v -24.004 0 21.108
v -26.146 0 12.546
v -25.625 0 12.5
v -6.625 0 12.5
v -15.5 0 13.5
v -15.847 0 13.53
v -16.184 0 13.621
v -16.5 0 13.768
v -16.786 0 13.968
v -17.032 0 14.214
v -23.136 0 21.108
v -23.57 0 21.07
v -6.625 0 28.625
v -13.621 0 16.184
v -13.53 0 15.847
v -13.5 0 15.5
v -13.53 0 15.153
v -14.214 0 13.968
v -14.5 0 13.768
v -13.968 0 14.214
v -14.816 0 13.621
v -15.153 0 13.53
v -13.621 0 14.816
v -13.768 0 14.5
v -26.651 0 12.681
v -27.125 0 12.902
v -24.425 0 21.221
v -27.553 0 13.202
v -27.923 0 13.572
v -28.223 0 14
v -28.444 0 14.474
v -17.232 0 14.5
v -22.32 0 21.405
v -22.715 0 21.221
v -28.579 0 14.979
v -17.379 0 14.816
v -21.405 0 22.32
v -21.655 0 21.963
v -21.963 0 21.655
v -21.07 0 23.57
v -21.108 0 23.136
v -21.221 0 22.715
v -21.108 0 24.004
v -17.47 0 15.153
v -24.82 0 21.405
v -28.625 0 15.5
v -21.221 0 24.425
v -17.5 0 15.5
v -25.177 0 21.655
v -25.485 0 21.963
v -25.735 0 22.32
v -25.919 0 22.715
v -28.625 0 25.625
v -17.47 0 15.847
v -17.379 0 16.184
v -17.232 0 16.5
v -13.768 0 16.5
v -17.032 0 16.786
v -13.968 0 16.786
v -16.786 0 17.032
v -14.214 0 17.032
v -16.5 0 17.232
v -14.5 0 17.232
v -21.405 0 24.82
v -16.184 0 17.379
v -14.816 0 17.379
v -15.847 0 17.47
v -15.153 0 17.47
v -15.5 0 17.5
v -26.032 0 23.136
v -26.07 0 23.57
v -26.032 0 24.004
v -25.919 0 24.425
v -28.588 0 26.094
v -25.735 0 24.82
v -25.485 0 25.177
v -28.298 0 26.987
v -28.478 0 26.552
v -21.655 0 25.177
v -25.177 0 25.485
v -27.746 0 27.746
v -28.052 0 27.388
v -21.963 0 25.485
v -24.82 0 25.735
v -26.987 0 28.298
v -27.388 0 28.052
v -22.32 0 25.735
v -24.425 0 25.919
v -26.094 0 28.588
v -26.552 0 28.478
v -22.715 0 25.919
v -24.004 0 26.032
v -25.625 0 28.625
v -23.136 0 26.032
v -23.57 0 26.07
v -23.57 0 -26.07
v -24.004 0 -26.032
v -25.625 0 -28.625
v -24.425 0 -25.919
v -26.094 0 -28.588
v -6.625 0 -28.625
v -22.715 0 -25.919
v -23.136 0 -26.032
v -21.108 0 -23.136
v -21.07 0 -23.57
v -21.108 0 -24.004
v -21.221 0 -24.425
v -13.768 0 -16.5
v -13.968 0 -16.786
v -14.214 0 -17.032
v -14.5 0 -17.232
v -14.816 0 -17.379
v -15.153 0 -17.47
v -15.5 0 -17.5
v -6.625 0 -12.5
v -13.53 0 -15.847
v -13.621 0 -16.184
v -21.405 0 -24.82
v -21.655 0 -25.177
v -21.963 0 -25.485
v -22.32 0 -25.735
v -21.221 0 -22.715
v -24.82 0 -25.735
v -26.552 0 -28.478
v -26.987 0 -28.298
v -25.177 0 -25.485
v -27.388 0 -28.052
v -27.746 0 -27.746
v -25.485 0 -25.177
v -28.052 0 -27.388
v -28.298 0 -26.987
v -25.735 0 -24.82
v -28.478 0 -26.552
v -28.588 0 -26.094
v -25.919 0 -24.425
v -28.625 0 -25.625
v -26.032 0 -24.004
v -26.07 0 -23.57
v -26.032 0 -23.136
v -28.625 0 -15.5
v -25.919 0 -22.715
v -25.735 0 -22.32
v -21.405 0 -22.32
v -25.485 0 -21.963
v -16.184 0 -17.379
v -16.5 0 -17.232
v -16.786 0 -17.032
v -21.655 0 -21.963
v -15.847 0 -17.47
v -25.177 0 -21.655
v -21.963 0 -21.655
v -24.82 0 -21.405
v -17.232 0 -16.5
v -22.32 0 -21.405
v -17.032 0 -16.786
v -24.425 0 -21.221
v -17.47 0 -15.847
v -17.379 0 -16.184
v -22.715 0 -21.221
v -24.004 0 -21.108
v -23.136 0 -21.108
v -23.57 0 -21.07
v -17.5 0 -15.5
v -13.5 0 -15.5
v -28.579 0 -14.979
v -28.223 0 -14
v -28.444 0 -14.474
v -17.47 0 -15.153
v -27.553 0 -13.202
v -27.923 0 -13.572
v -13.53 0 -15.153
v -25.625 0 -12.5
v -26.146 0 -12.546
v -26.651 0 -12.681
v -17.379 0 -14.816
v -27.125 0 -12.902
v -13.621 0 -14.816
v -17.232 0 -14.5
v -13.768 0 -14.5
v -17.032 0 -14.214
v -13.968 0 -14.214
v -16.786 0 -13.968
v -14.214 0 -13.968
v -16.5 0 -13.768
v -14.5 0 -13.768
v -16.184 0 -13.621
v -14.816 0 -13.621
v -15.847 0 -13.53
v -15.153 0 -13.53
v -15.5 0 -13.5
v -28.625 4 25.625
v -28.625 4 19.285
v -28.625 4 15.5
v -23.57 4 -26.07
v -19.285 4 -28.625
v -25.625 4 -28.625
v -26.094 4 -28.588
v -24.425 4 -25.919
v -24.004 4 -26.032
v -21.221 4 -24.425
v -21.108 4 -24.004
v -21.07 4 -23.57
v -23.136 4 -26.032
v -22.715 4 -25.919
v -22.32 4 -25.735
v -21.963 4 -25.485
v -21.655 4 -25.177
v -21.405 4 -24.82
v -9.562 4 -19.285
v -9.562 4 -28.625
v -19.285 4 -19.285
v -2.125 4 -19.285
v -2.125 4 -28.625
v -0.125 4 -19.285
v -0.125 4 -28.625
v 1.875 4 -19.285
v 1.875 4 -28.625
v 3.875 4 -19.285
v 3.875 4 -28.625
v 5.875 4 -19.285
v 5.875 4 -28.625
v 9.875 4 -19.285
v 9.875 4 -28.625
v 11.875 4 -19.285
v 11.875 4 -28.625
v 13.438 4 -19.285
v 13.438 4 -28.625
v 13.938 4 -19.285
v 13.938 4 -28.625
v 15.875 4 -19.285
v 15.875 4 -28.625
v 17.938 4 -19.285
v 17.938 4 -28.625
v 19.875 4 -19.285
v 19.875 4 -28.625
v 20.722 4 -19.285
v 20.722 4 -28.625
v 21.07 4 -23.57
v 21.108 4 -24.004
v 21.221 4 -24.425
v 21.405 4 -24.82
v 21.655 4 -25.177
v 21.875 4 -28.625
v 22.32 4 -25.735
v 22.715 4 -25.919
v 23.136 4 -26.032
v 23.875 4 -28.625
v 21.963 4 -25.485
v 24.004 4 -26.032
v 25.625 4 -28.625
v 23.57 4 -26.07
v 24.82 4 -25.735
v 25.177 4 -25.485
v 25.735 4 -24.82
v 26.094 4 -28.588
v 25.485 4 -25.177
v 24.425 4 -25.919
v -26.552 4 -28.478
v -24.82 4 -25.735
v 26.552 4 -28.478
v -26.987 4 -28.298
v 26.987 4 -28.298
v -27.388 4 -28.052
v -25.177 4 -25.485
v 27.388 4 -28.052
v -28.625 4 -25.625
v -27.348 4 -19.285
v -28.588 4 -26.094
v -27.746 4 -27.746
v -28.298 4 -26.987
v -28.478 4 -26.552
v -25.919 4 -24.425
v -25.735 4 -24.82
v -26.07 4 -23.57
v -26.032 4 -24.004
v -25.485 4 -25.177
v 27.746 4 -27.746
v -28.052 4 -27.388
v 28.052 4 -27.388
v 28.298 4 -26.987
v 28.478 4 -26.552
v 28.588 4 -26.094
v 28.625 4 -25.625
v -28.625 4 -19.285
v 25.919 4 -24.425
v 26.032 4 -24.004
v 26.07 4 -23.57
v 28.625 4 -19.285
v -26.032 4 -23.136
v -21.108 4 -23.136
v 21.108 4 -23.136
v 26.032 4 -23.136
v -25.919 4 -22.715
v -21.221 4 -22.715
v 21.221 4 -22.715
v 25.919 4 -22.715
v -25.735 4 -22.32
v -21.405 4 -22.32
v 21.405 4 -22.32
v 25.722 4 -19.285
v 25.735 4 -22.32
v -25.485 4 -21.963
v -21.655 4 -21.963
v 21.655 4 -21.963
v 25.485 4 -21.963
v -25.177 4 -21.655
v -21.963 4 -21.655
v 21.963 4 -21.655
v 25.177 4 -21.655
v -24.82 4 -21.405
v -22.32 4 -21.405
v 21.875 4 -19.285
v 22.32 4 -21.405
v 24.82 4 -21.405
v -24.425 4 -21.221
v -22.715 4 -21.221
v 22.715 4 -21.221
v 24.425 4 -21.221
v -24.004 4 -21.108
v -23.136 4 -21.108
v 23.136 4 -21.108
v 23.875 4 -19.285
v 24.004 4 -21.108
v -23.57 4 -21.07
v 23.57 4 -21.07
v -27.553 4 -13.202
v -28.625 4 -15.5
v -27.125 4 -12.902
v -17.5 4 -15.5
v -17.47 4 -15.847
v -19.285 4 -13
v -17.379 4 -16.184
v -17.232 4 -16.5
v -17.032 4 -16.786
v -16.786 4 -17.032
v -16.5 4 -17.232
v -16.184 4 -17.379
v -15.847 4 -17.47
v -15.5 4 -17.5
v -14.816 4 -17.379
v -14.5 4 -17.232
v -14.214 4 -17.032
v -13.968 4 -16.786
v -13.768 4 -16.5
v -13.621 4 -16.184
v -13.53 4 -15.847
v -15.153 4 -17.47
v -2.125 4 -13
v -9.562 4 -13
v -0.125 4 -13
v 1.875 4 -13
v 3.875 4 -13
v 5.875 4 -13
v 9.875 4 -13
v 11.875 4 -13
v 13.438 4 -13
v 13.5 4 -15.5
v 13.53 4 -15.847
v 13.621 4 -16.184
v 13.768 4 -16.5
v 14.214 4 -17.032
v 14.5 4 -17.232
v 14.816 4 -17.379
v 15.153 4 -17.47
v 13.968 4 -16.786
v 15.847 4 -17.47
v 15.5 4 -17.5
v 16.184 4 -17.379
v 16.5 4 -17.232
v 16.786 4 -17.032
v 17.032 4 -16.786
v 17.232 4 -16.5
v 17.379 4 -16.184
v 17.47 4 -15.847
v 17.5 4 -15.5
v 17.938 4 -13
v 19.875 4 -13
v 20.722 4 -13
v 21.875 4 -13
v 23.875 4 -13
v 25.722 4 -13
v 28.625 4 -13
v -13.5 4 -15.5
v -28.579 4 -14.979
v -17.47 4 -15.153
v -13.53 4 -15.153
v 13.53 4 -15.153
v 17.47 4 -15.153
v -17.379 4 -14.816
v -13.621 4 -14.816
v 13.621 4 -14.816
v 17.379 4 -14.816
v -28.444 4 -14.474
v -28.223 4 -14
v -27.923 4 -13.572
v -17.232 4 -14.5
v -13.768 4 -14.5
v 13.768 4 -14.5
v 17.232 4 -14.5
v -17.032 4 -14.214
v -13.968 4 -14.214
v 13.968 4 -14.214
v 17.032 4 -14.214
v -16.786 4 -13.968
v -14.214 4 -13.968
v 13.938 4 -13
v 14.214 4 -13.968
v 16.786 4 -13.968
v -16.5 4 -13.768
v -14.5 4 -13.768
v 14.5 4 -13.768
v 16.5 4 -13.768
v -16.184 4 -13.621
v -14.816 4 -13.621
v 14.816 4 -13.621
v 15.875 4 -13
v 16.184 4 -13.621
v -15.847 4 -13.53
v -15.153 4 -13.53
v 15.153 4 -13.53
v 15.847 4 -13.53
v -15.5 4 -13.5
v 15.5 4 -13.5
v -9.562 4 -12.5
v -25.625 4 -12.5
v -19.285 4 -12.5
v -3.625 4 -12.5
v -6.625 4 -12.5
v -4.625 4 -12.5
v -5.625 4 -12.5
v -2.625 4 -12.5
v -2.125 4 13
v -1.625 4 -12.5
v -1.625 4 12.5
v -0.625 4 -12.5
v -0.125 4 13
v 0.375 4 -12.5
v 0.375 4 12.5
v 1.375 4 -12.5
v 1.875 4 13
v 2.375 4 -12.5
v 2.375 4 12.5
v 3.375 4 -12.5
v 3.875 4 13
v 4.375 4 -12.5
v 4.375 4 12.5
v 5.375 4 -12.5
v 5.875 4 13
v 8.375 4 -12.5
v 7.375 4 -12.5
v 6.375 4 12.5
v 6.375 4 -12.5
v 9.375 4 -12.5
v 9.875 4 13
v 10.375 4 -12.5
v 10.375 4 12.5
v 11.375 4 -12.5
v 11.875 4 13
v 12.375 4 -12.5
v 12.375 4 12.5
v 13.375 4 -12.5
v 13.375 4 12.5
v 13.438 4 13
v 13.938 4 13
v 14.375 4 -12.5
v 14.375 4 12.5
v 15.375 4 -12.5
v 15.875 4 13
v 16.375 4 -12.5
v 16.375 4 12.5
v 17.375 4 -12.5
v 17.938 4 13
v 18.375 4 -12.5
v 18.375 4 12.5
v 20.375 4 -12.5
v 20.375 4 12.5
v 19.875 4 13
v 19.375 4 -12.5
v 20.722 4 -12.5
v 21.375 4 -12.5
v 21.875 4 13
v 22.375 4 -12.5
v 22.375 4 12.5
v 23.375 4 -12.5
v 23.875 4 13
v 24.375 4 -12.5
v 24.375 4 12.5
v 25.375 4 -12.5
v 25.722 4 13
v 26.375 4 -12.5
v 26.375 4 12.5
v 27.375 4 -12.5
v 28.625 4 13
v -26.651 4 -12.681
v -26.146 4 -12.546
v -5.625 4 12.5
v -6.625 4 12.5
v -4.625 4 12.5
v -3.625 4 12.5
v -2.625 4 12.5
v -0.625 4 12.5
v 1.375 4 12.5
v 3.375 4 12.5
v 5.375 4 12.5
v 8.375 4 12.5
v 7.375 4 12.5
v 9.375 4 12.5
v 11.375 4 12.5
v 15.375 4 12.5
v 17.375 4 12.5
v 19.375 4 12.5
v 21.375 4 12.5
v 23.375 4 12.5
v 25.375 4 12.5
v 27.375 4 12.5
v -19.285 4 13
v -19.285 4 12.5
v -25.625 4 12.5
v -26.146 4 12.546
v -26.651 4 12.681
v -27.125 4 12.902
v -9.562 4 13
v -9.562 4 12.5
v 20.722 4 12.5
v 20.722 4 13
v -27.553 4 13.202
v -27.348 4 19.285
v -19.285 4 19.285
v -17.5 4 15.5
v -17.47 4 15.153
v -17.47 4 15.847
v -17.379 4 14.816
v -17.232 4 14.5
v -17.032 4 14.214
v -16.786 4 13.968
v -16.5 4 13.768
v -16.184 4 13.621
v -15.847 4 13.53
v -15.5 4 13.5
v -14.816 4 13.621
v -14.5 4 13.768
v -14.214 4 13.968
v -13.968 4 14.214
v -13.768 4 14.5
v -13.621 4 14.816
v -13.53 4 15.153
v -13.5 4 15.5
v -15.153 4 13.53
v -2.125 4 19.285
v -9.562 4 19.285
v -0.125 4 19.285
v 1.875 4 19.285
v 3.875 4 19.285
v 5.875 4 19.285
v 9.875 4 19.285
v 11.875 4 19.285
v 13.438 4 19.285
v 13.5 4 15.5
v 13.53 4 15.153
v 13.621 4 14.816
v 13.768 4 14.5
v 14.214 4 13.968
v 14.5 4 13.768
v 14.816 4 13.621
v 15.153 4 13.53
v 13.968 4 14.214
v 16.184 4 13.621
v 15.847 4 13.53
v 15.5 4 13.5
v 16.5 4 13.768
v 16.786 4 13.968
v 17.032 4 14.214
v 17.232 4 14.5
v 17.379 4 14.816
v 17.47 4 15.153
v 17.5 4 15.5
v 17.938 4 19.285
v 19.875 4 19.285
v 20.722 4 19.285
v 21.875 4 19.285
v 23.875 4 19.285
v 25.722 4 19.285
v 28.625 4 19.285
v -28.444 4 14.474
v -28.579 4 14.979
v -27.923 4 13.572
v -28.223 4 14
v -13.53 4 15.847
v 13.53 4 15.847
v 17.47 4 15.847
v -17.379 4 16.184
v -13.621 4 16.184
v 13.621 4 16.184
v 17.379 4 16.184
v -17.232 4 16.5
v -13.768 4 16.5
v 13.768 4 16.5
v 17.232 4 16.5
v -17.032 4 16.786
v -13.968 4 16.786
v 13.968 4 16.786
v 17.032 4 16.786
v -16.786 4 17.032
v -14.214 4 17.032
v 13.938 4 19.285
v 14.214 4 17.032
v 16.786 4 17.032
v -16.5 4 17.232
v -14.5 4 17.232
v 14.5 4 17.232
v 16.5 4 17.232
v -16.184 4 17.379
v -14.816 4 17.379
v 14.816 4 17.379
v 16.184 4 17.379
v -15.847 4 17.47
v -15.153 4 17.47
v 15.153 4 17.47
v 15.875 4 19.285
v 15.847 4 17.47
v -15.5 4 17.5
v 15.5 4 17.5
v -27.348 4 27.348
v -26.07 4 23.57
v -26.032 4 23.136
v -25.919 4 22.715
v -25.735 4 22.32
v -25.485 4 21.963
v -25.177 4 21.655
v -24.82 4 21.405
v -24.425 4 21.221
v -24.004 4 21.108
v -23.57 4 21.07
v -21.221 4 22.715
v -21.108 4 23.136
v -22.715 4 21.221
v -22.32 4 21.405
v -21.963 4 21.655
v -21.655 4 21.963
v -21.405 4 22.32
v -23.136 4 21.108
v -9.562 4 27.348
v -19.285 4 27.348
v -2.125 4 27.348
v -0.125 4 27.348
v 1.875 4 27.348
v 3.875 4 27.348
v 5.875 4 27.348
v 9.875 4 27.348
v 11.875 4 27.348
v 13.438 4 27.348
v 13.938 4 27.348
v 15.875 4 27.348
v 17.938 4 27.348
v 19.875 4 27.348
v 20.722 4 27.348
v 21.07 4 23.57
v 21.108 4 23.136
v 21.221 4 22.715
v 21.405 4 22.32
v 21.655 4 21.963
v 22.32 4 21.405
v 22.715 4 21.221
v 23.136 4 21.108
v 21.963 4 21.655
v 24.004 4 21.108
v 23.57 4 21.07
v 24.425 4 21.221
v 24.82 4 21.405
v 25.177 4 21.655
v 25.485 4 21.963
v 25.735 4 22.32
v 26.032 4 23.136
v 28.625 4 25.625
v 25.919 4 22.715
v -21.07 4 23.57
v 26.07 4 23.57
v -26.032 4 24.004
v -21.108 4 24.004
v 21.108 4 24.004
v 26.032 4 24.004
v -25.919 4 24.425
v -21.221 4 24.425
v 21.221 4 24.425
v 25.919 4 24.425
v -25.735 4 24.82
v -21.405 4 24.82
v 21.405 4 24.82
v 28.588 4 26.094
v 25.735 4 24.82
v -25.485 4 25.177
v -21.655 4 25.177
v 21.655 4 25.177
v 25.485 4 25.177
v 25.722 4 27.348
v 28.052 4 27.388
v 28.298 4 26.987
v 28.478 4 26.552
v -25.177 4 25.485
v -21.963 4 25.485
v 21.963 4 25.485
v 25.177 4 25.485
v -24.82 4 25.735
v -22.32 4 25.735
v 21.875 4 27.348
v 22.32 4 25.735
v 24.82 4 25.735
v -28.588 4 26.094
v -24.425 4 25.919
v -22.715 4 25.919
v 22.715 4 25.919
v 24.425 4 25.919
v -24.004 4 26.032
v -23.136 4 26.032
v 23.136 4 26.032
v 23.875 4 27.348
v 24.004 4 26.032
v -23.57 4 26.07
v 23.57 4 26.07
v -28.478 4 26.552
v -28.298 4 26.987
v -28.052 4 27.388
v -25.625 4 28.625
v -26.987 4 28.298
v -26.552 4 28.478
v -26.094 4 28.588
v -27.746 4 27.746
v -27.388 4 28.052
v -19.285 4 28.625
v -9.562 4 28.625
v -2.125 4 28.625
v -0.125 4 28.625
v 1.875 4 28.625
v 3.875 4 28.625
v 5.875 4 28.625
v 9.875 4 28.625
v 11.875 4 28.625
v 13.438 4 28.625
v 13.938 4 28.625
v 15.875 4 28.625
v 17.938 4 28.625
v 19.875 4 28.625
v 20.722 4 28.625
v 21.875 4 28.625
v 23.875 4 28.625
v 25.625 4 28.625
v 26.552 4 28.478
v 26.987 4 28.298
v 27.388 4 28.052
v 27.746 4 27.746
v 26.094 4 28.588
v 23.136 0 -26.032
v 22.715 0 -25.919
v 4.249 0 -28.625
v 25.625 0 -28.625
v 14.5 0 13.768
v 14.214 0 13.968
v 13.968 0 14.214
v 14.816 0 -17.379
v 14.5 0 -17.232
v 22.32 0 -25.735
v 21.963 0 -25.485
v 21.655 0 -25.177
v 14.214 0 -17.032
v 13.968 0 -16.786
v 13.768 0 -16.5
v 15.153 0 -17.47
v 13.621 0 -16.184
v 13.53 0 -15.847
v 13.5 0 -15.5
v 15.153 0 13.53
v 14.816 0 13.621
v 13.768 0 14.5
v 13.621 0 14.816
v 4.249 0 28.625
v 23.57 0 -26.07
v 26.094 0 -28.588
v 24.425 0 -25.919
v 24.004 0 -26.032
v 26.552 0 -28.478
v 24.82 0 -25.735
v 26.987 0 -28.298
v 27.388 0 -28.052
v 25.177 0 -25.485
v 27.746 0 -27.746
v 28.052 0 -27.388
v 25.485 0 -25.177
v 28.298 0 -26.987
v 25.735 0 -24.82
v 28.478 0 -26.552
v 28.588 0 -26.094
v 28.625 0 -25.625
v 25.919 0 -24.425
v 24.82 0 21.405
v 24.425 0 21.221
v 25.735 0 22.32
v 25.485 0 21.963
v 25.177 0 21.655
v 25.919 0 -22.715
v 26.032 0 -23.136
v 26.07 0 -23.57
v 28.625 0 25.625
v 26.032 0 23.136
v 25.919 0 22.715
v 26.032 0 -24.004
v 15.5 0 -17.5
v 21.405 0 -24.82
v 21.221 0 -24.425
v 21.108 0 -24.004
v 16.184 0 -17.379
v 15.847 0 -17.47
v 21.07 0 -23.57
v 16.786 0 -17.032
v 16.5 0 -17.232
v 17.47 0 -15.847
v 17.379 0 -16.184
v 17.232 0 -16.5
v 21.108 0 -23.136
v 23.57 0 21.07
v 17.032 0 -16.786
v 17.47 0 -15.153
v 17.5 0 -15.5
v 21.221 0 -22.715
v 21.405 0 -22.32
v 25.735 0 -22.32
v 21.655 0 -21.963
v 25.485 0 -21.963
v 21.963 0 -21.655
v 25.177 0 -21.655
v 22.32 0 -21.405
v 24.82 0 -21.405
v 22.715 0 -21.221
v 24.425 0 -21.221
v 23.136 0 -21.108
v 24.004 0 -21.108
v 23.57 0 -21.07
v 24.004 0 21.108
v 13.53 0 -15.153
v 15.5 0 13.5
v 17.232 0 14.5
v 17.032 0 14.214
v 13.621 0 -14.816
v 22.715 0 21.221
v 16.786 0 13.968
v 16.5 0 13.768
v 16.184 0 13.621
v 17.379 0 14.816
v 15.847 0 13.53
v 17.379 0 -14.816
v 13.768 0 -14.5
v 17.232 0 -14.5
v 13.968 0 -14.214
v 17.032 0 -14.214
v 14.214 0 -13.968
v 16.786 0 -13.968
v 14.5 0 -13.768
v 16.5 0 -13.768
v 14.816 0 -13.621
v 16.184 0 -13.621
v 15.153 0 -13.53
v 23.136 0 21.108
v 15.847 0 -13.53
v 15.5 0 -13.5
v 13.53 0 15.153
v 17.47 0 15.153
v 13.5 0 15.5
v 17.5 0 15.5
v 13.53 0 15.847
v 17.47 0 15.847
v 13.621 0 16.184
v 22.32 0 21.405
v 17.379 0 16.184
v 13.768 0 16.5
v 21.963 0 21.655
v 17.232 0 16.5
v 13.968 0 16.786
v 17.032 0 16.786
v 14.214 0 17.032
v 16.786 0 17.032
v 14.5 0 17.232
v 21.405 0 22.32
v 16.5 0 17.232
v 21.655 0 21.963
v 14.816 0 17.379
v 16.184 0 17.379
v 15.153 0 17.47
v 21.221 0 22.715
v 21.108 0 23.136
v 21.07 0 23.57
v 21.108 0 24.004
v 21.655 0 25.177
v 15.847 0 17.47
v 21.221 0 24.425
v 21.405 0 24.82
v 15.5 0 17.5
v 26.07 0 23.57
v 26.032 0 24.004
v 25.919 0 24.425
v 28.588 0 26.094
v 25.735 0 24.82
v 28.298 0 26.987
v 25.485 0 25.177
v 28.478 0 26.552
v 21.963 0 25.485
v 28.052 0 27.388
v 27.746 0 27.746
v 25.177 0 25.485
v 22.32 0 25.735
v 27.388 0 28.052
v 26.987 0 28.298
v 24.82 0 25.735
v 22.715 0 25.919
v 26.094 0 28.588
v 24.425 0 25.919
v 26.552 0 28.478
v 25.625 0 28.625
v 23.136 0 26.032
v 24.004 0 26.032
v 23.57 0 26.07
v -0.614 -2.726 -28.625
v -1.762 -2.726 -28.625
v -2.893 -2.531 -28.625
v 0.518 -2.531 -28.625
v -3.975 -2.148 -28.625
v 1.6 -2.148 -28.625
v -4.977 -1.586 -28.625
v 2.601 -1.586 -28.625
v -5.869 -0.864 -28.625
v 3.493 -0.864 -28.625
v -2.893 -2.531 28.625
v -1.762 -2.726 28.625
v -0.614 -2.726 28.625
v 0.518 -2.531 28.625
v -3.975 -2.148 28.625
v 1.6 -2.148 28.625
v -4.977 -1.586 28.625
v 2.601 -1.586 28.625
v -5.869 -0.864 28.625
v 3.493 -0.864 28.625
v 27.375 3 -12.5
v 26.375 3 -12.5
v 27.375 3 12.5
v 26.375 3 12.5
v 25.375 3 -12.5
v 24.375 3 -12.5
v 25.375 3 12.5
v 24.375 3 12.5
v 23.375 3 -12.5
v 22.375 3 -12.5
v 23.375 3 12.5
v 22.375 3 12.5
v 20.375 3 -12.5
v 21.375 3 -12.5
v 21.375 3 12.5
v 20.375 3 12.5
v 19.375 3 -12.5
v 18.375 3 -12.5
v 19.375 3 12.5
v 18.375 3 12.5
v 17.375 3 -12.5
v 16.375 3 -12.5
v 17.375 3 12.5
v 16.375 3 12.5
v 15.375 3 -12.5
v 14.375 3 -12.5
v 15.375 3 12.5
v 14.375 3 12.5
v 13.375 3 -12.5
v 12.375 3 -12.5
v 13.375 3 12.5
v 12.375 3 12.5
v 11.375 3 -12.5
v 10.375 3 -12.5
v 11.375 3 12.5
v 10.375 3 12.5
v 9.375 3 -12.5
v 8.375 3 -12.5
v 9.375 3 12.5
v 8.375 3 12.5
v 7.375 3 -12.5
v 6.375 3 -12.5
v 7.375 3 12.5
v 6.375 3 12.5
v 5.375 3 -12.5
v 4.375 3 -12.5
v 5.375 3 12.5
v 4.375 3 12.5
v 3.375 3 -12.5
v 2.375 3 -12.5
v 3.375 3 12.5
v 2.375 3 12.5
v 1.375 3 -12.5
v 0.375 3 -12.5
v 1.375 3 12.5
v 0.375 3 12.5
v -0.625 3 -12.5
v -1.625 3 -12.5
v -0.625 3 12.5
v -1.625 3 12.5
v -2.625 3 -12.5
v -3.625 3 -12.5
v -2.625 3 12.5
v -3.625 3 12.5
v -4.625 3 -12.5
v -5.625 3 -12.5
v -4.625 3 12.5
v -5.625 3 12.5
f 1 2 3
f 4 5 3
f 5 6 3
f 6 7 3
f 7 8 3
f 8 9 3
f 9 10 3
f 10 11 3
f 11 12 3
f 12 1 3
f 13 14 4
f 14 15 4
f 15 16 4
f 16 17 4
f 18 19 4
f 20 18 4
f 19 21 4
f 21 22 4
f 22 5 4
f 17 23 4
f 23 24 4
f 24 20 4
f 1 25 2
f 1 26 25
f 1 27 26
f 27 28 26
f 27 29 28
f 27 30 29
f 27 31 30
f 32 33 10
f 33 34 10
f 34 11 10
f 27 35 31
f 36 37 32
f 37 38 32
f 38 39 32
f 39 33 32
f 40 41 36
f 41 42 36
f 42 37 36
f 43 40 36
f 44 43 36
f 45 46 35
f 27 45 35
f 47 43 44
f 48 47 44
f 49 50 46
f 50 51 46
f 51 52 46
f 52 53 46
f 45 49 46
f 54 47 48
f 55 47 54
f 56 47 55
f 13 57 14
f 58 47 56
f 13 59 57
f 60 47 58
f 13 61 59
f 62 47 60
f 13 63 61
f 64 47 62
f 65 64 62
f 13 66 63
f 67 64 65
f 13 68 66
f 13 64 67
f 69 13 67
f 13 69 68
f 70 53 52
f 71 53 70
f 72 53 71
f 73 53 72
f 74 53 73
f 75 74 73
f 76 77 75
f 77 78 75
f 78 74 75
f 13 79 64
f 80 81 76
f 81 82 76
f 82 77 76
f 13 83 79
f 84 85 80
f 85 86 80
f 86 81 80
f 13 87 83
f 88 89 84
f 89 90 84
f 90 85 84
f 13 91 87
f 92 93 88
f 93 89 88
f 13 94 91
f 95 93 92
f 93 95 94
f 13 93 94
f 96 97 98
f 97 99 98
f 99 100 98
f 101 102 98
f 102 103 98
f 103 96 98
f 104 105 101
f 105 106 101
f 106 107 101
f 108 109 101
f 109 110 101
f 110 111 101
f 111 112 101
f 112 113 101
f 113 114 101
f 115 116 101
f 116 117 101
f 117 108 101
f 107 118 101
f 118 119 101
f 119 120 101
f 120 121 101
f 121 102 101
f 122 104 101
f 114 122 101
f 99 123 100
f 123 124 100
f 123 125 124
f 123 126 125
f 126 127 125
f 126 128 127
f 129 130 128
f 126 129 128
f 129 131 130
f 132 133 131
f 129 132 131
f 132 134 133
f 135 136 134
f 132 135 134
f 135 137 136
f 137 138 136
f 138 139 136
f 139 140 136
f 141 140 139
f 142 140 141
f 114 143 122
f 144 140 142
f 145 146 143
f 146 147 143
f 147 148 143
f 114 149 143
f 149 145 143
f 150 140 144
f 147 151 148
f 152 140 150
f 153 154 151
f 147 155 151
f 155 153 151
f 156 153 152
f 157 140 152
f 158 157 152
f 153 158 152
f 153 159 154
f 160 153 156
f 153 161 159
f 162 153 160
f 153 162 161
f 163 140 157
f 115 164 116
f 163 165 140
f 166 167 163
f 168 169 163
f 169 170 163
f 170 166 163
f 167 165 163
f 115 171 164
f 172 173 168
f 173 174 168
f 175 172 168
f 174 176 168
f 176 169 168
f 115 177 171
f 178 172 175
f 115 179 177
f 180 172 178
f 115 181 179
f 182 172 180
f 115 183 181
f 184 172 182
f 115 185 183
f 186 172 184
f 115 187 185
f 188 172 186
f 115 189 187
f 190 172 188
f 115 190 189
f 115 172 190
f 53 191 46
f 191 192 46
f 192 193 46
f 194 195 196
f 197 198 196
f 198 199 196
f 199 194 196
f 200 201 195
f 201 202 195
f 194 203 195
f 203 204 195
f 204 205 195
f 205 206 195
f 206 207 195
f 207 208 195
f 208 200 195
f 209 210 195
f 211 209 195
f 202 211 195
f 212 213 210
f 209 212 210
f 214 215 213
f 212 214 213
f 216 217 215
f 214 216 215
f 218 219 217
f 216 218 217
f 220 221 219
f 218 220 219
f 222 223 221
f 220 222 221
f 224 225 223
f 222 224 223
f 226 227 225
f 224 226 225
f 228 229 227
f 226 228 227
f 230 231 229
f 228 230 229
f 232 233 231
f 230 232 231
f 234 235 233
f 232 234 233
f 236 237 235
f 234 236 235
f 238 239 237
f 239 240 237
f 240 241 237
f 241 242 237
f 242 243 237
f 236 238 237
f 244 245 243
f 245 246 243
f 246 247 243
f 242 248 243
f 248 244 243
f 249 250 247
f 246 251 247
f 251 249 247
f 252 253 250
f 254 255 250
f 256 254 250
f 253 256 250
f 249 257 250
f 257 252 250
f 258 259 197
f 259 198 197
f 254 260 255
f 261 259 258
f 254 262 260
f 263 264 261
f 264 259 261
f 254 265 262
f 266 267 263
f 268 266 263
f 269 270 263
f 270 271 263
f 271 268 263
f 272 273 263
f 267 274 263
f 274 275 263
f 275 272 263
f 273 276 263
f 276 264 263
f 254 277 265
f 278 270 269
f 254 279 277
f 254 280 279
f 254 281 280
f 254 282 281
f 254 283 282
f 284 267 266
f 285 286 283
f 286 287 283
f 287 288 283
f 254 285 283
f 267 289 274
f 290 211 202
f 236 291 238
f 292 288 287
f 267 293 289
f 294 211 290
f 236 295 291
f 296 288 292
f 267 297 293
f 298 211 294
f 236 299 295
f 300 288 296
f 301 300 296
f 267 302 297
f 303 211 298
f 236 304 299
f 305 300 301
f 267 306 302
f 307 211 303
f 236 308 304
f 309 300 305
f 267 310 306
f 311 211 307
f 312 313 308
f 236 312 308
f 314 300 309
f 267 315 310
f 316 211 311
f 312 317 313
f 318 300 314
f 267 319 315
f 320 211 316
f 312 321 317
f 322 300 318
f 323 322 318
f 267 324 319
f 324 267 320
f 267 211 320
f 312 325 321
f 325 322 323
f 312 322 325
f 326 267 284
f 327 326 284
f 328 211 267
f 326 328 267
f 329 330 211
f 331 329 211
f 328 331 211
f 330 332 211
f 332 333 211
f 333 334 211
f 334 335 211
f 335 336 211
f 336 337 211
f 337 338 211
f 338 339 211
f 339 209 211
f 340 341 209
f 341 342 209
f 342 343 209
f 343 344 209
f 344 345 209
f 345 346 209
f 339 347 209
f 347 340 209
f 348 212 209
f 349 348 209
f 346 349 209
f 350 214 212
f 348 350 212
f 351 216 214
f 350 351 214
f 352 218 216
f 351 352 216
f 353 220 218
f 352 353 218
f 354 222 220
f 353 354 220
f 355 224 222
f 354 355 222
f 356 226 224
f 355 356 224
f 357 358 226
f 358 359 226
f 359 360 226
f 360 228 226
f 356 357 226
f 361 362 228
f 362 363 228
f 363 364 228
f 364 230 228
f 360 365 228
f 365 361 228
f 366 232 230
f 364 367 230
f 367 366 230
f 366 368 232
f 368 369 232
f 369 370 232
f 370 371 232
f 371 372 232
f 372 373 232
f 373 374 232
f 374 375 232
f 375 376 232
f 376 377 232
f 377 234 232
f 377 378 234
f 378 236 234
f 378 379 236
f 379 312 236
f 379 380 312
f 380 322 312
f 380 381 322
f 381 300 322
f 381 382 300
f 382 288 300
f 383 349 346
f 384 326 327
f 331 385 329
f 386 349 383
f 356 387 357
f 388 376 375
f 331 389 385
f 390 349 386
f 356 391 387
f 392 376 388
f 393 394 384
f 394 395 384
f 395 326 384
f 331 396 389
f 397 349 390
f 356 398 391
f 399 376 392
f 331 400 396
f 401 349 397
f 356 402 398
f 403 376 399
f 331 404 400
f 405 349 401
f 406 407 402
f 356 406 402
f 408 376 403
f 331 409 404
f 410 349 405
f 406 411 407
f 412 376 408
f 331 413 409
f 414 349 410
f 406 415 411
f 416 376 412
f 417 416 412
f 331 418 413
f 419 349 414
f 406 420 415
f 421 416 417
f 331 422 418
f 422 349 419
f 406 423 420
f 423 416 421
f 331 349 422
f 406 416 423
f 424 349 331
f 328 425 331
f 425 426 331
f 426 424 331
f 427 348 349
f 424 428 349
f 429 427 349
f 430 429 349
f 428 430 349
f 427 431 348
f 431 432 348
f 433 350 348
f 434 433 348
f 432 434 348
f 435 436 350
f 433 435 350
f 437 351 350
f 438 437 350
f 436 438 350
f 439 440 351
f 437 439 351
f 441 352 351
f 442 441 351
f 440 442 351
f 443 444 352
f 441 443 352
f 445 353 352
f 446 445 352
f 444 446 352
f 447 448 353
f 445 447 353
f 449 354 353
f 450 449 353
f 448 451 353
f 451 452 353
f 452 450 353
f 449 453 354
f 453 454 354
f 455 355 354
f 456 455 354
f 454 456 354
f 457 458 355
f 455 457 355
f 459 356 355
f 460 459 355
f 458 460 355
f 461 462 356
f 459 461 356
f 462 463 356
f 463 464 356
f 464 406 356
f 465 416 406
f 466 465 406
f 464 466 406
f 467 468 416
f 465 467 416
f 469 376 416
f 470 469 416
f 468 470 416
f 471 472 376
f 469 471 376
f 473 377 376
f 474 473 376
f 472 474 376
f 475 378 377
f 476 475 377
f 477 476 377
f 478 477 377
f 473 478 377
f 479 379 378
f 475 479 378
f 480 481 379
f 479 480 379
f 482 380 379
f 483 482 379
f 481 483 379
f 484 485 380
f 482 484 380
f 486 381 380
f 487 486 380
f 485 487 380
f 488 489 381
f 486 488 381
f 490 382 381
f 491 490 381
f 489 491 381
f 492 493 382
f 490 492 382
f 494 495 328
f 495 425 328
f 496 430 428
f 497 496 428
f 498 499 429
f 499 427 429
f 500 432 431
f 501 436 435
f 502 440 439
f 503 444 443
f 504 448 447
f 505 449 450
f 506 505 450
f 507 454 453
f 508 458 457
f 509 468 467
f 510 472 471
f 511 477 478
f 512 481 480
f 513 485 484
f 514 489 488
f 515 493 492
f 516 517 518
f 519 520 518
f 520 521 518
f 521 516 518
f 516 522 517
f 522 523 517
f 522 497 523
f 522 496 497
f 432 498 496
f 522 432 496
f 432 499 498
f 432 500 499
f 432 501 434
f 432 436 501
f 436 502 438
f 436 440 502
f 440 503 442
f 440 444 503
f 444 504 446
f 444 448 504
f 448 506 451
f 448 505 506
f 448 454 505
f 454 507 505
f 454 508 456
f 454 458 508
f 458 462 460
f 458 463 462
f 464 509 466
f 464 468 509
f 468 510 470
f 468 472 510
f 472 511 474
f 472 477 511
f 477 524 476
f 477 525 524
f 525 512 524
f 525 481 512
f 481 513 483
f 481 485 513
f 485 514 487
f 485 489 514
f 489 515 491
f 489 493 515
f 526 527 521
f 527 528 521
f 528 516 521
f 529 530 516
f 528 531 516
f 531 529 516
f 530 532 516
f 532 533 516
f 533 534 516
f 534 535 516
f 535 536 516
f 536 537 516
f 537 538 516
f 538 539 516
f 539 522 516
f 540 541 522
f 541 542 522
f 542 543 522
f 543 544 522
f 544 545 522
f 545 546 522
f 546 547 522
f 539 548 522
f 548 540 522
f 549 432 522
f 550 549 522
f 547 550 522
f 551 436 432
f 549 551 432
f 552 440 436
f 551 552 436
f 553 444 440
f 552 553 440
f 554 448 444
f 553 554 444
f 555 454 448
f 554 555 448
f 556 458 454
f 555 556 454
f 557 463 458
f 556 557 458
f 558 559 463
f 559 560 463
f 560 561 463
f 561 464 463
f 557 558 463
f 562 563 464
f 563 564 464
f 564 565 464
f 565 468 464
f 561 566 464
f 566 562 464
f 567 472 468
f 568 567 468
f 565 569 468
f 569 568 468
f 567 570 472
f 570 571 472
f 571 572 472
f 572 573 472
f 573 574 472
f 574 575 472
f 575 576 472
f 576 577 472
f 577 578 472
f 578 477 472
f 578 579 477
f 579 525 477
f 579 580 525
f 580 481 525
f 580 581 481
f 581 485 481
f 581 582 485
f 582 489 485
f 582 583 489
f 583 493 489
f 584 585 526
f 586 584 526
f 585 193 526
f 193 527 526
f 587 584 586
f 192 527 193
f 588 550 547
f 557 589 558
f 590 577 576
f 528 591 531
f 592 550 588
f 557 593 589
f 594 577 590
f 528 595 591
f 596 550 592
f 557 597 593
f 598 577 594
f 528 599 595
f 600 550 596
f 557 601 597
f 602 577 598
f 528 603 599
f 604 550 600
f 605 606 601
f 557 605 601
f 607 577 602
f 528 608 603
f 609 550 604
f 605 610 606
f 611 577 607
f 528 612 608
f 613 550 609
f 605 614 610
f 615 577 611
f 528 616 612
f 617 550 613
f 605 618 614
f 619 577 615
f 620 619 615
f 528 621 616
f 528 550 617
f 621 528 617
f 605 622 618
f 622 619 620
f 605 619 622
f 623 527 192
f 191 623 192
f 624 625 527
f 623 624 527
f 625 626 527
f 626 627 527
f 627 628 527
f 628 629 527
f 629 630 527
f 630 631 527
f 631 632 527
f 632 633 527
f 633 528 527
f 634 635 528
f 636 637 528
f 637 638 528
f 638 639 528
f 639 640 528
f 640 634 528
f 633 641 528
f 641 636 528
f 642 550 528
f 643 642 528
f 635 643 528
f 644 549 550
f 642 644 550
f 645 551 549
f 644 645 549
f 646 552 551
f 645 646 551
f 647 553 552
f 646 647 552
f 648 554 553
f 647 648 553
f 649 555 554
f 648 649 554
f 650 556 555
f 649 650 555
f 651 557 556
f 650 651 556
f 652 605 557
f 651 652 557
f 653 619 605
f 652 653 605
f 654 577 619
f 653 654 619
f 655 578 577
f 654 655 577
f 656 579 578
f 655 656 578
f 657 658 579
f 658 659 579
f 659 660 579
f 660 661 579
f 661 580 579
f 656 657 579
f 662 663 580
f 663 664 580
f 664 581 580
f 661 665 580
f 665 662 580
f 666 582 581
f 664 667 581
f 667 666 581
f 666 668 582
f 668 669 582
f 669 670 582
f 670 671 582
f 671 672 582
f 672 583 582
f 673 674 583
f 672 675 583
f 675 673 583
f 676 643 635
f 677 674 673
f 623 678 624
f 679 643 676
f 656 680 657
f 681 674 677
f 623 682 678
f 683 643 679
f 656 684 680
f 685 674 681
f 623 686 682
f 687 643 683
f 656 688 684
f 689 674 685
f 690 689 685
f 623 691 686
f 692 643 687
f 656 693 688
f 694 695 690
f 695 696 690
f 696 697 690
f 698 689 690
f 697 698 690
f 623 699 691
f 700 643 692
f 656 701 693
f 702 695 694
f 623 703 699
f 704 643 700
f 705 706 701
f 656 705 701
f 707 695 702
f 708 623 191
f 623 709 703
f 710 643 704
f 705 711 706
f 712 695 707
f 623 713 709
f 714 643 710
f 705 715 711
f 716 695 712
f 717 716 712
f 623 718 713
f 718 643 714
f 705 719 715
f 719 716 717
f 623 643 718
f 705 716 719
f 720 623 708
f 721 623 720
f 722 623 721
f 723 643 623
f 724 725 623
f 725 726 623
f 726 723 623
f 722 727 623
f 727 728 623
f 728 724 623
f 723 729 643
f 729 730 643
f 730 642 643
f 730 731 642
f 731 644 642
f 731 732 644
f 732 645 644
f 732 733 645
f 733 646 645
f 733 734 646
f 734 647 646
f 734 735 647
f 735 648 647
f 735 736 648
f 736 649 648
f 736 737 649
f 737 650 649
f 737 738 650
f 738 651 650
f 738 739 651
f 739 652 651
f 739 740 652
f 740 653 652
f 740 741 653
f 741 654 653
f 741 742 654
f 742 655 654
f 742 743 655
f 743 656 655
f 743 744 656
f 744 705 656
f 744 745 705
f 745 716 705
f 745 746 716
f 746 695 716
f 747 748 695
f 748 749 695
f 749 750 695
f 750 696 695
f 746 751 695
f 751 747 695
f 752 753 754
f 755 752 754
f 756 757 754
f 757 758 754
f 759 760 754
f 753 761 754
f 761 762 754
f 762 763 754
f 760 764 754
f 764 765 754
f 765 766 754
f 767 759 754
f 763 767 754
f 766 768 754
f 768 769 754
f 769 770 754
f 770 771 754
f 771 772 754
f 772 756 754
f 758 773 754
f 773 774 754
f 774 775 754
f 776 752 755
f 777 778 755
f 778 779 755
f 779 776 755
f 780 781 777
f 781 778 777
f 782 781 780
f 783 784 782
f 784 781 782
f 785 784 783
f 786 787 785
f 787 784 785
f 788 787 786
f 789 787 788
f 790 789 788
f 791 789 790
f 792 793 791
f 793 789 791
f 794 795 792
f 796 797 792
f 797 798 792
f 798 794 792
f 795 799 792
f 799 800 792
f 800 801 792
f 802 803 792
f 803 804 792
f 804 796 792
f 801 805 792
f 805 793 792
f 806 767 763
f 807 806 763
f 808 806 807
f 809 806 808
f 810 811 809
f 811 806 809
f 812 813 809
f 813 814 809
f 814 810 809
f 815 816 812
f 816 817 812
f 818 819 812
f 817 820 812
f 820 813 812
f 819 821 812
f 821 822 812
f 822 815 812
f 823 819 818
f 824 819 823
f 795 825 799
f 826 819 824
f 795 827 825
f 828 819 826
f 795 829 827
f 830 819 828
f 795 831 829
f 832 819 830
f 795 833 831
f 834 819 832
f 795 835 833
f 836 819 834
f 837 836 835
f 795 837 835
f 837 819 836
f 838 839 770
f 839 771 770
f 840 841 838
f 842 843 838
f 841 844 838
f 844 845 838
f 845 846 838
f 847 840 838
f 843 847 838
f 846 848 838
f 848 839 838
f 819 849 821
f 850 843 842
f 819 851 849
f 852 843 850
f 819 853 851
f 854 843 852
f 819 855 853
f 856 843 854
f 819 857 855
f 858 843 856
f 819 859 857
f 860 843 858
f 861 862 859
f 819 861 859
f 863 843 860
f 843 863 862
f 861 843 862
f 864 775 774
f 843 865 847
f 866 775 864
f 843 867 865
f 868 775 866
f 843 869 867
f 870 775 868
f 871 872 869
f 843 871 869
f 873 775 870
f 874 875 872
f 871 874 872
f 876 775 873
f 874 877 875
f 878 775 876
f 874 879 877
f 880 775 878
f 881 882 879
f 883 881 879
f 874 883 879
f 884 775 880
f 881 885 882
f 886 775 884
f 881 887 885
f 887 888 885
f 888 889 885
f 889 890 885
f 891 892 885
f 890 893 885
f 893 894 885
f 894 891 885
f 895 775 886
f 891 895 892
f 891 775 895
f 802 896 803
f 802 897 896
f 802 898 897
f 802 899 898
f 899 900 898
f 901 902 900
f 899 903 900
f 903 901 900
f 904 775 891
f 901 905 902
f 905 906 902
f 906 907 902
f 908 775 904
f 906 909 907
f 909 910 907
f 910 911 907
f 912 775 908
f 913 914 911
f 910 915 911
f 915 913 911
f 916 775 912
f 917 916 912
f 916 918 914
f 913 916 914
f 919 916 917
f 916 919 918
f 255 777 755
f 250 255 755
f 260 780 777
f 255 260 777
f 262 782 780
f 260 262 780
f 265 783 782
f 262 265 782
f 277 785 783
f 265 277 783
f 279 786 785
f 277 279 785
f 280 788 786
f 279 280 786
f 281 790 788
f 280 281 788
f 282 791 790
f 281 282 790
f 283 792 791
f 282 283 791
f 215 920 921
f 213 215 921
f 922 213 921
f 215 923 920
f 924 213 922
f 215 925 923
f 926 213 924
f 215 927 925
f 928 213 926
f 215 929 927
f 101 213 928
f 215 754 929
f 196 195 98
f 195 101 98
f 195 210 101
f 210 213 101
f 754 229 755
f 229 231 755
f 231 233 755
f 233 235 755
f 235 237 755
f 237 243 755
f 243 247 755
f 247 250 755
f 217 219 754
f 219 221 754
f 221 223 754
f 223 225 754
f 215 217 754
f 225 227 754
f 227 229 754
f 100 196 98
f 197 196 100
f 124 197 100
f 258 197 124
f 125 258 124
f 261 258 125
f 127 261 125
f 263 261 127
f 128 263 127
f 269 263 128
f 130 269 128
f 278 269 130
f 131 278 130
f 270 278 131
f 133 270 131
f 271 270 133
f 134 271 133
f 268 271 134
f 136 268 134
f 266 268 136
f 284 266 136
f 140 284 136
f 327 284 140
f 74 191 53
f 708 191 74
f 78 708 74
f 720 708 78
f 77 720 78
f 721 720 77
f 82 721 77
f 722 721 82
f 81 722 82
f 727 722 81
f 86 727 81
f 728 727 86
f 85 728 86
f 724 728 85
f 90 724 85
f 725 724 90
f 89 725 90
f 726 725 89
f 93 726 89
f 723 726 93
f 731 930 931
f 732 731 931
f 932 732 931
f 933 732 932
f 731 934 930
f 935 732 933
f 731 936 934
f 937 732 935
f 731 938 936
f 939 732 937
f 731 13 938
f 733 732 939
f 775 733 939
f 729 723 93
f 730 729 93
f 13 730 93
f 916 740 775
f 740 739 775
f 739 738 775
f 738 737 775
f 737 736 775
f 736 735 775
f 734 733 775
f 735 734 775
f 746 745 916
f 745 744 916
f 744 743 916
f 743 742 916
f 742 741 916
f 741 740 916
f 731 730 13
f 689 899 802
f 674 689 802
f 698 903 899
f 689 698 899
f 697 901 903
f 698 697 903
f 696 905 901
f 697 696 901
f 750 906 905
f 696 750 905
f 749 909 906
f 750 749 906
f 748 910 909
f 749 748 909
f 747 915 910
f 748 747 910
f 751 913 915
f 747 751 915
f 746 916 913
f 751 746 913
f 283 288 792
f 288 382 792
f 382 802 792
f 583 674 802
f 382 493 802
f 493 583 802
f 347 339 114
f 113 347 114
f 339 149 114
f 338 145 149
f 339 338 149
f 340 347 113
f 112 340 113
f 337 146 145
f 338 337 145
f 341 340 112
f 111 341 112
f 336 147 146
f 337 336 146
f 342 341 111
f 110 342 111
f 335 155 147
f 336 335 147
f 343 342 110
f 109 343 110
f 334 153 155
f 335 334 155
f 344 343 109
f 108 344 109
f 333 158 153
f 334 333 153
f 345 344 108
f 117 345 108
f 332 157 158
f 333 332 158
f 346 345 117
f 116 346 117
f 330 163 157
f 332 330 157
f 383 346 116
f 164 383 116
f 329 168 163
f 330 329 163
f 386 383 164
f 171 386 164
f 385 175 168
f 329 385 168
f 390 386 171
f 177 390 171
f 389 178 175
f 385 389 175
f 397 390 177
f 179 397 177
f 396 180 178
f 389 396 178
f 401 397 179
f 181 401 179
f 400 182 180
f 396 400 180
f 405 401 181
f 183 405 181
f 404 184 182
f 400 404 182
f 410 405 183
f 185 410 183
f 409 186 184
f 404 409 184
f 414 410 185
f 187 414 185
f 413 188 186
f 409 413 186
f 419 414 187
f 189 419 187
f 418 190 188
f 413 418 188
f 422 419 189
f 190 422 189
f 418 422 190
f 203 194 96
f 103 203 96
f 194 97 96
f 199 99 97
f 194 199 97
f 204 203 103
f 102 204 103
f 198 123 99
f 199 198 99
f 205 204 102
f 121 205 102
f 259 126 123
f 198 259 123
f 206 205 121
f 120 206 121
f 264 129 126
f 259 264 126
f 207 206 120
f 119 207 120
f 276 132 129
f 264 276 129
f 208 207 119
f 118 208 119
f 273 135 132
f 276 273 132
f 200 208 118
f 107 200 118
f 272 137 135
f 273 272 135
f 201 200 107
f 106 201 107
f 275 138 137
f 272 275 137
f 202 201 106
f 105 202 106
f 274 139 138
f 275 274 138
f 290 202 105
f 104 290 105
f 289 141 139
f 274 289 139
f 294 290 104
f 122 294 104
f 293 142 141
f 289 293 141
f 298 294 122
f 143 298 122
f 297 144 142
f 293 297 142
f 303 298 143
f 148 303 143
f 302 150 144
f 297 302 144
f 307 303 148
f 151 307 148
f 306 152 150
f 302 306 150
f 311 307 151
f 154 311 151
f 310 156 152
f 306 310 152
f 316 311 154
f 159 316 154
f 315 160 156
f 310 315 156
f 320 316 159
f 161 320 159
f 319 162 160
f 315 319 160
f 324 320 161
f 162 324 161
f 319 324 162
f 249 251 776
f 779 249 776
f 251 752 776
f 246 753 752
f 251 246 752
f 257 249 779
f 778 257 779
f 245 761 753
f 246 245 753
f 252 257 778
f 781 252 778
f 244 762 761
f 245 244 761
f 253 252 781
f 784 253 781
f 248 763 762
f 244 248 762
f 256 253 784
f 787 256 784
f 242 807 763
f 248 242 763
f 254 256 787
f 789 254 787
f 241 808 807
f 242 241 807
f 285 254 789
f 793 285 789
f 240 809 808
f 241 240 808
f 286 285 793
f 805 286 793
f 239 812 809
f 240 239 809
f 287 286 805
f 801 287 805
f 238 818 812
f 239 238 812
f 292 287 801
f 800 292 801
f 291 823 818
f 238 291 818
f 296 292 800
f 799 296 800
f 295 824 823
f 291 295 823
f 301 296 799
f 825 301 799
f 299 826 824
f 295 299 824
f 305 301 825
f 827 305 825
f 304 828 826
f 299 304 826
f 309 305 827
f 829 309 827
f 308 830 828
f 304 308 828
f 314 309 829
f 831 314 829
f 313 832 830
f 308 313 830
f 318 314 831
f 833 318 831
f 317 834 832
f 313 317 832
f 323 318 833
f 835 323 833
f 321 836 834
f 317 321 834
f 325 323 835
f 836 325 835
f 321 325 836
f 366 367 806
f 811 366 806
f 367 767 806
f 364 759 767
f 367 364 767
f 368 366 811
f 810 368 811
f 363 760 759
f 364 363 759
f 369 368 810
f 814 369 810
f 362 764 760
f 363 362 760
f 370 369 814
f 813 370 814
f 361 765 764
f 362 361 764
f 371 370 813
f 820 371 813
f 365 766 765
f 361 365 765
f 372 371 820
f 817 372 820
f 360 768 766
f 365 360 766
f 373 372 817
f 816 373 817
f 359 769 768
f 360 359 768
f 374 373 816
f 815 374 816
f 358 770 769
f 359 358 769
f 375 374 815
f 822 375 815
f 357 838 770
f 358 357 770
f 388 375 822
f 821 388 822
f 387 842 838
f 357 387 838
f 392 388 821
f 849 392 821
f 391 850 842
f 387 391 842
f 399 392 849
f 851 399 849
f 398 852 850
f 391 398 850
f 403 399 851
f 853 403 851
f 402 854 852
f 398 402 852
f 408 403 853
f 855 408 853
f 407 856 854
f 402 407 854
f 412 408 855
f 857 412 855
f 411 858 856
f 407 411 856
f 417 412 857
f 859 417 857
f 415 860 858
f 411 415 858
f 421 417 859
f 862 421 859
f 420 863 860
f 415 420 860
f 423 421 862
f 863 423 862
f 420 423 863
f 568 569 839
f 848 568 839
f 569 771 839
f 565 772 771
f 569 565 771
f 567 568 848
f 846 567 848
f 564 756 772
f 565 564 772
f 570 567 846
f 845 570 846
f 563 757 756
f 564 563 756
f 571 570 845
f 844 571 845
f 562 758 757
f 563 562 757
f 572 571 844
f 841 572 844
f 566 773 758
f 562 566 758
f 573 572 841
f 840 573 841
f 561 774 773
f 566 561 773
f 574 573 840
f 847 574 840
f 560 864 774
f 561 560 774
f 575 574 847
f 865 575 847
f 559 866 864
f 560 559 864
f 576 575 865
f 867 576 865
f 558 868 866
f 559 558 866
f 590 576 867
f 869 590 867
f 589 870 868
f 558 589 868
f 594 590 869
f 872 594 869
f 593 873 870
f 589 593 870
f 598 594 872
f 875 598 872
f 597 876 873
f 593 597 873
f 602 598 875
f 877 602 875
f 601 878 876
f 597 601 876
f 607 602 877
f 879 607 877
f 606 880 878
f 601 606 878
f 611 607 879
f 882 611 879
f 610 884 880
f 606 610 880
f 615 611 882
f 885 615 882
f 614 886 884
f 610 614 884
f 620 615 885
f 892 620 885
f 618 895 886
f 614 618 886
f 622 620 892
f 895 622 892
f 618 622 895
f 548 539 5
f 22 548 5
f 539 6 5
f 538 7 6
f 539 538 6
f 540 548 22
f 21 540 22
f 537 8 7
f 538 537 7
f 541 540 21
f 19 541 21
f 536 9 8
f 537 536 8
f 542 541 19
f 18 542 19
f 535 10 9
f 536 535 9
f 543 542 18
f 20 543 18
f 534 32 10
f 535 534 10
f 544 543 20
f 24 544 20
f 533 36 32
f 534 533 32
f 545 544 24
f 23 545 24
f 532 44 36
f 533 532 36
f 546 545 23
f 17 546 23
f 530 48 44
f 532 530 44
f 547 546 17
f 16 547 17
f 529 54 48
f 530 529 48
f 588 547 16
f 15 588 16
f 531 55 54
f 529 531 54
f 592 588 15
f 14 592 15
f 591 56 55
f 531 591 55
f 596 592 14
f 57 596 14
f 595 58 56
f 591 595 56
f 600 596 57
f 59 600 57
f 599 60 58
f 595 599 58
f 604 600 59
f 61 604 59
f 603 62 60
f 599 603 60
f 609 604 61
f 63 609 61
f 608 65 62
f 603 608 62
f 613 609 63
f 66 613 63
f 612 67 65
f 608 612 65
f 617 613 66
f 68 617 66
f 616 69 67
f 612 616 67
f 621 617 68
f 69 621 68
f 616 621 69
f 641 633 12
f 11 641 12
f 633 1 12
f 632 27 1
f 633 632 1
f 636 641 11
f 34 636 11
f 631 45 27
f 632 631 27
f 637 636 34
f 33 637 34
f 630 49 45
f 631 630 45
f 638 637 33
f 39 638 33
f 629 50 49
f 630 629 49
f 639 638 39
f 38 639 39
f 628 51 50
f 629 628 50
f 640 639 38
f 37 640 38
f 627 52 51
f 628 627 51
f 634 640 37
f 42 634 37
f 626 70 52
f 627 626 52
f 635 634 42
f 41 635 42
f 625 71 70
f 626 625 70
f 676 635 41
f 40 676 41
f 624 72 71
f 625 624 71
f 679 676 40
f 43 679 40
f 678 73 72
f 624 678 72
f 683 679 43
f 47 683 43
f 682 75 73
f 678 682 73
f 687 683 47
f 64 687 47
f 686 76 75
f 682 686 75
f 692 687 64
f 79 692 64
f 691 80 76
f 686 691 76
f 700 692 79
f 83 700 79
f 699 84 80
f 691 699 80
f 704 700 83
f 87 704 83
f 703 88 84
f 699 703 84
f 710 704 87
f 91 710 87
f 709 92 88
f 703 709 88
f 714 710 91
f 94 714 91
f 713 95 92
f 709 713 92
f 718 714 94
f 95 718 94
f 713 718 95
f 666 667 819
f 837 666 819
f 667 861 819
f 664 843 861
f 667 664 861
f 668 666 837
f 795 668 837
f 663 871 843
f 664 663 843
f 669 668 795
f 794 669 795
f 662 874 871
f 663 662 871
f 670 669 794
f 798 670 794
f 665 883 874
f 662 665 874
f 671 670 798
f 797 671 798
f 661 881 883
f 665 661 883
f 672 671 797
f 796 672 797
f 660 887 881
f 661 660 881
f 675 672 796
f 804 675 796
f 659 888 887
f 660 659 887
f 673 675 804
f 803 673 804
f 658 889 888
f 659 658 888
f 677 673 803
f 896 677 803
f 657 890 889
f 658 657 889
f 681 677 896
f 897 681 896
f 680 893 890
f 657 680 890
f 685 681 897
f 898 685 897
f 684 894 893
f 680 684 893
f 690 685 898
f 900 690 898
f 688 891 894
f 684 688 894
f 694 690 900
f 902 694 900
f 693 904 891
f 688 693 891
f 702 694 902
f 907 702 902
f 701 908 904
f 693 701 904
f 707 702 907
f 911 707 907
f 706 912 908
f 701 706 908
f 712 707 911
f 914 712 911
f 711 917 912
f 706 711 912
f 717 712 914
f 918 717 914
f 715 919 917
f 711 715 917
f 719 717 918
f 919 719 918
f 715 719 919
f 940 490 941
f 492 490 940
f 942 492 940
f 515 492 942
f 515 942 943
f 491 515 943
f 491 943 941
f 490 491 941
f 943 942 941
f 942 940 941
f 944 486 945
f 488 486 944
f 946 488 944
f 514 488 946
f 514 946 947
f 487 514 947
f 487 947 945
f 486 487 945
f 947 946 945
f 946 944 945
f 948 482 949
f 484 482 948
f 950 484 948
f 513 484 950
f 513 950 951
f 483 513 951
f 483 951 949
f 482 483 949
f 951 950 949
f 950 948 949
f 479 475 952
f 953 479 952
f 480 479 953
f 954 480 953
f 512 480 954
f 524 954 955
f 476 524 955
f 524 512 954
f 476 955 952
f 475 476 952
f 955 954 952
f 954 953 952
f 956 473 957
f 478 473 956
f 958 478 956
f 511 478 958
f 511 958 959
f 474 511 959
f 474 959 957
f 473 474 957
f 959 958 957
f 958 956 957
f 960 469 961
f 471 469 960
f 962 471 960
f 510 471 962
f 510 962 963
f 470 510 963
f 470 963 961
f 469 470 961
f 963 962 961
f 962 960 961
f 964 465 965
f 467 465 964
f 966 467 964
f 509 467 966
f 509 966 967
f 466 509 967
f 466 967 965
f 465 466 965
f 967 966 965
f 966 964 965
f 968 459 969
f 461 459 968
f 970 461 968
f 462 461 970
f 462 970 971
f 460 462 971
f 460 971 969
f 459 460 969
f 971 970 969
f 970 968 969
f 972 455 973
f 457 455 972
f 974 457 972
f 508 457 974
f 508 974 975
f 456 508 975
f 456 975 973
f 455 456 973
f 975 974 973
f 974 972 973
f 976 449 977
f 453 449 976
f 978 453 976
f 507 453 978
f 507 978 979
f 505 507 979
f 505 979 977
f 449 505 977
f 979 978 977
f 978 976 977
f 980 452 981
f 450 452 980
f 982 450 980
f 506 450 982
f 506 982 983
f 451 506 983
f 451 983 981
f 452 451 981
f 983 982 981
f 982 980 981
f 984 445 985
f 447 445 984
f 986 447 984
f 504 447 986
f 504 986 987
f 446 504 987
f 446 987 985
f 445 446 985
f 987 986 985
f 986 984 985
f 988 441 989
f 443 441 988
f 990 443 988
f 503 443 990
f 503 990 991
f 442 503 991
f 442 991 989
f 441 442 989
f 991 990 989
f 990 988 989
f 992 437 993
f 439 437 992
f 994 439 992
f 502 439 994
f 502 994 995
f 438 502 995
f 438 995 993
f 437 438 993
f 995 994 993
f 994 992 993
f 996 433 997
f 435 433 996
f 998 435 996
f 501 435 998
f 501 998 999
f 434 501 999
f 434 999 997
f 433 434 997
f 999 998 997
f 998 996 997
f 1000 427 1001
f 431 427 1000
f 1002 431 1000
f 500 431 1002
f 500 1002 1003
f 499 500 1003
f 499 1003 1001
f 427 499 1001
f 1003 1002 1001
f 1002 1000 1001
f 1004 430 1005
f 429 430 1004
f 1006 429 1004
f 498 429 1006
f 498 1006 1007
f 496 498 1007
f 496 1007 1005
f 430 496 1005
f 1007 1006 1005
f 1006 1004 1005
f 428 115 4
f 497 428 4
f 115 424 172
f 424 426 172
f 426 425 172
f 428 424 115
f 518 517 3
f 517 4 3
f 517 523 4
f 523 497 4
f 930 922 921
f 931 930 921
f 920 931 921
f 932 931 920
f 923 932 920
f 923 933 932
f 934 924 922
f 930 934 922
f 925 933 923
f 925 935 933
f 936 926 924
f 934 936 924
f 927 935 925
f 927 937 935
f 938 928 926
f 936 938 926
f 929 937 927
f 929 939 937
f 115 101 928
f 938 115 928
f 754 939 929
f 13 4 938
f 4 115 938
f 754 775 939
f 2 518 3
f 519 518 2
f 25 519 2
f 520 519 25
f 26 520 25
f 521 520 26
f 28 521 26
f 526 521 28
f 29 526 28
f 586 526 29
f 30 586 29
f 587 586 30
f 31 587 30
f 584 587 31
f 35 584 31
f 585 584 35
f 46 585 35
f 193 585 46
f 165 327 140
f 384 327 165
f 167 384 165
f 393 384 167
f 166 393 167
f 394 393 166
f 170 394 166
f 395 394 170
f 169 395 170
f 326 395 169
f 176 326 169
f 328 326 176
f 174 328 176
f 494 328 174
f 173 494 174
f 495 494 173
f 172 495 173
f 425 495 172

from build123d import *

# Parameters (mm, degrees)
SKETCH1_R           = 2
SKETCH1_R_2         = 2.5
BOSS_EXTRUDE1_DEPTH = 4
SKETCH2_W           = 1
SKETCH2_H           = 25
CUT_EXTRUDE1_DEPTH  = 1
SKETCH3_W           = 22
SKETCH3_H           = 25
CUT_EXTRUDE2_DEPTH  = 41.679002569
BOSS_EXTRUDE2_REACH = 66.132
FILLET1_R           = 3


with BuildPart() as part:
    # Sketch1 → Boss-Extrude1 (new body)
    with BuildSketch(Plane(origin=(0, 0, 0), x_dir=(1, 0, 0), z_dir=(0, 1, 0))):
        with BuildLine():
            Line((25.625, 28.625), (-25.625, 28.625))
            ThreePointArc((-25.625, 28.625), (-27.746320344, 27.746320344), (-28.625, 25.625))
            Line((-28.625, 25.625), (-28.625, -25.625))
            ThreePointArc((-28.625, -25.625), (-27.746320344, -27.746320344), (-25.625, -28.625))
            Line((-25.625, -28.625), (25.625, -28.625))
            ThreePointArc((25.625, -28.625), (27.746320344, -27.746320344), (28.625, -25.625))
            Line((28.625, -25.625), (28.625, 25.625))
            ThreePointArc((28.625, 25.625), (27.746320344, 27.746320344), (25.625, 28.625))
        make_face()
        with Locations(Location((-15.5, 15.5, 0), (0, 0, 270))):
            Circle(SKETCH1_R, mode=Mode.SUBTRACT)
        with Locations(Location((-23.55, 23.55, 0), (0, 0, 270))):
            Circle(SKETCH1_R_2, mode=Mode.SUBTRACT)
        with Locations(Location((23.55, 23.55, 0), (0, 0, 270))):
            Circle(SKETCH1_R_2, mode=Mode.SUBTRACT)
        with Locations(Location((15.5, 15.5, 0), (0, 0, 270))):
            Circle(SKETCH1_R, mode=Mode.SUBTRACT)
        with Locations(Location((15.5, -15.5, 0), (0, 0, 270))):
            Circle(SKETCH1_R, mode=Mode.SUBTRACT)
        with Locations(Location((-15.5, -15.5, 0), (0, 0, 270))):
            Circle(SKETCH1_R, mode=Mode.SUBTRACT)
        with Locations(Location((-23.55, -23.55, 0), (0, 0, 270))):
            Circle(SKETCH1_R_2, mode=Mode.SUBTRACT)
        with Locations(Location((23.55, -23.55, 0), (0, 0, 270))):
            Circle(SKETCH1_R_2, mode=Mode.SUBTRACT)
    extrude(amount=BOSS_EXTRUDE1_DEPTH)

    # Sketch2 → Cut-Extrude1 (cut)
    with BuildSketch(Plane(origin=(0, 4, 0), x_dir=(1, 0, 0), z_dir=(0, 1, 0))):
        with Locations((-27.125, 0)):
            Rectangle(SKETCH2_W, SKETCH2_H)
        with Locations((-25.125, 0)):
            Rectangle(SKETCH2_W, SKETCH2_H)
        with Locations((-23.125, 0)):
            Rectangle(SKETCH2_W, SKETCH2_H)
        with Locations((-21.125, 0)):
            Rectangle(SKETCH2_W, SKETCH2_H)
        with Locations((-19.125, 0)):
            Rectangle(SKETCH2_W, SKETCH2_H)
        with Locations((-17.125, 0)):
            Rectangle(SKETCH2_W, SKETCH2_H)
        with Locations((-15.125, 0)):
            Rectangle(SKETCH2_W, SKETCH2_H)
        with Locations((-13.125, 0)):
            Rectangle(SKETCH2_W, SKETCH2_H)
        with Locations((-11.125, 0)):
            Rectangle(SKETCH2_W, SKETCH2_H)
        with Locations((-9.125, 0)):
            Rectangle(SKETCH2_W, SKETCH2_H)
        with Locations((-7.125, 0)):
            Rectangle(SKETCH2_W, SKETCH2_H)
        with Locations((-5.125, 0)):
            Rectangle(SKETCH2_W, SKETCH2_H)
        with Locations((-3.125, 0)):
            Rectangle(SKETCH2_W, SKETCH2_H)
        with Locations((-1.125, 0)):
            Rectangle(SKETCH2_W, SKETCH2_H)
        with Locations((0.875, 0)):
            Rectangle(SKETCH2_W, SKETCH2_H)
        with Locations((2.875, 0)):
            Rectangle(SKETCH2_W, SKETCH2_H)
        with Locations((4.875, 0)):
            Rectangle(SKETCH2_W, SKETCH2_H)
        with Locations((6.875, 0)):
            Rectangle(SKETCH2_W, SKETCH2_H)
        with Locations((8.875, 0)):
            Rectangle(SKETCH2_W, SKETCH2_H)
        with Locations((10.875, 0)):
            Rectangle(SKETCH2_W, SKETCH2_H)
        with Locations((12.875, 0)):
            Rectangle(SKETCH2_W, SKETCH2_H)
        with Locations((14.875, 0)):
            Rectangle(SKETCH2_W, SKETCH2_H)
        with Locations((16.875, 0)):
            Rectangle(SKETCH2_W, SKETCH2_H)
        with Locations((18.875, 0)):
            Rectangle(SKETCH2_W, SKETCH2_H)
        with Locations((20.875, 0)):
            Rectangle(SKETCH2_W, SKETCH2_H)
        with Locations((22.875, 0)):
            Rectangle(SKETCH2_W, SKETCH2_H)
        with Locations((24.875, 0)):
            Rectangle(SKETCH2_W, SKETCH2_H)
        with Locations((26.875, 0)):
            Rectangle(SKETCH2_W, SKETCH2_H)
    extrude(amount=-CUT_EXTRUDE1_DEPTH, mode=Mode.SUBTRACT)

    # Sketch3 → Cut-Extrude2 (cut, through all)
    with BuildSketch(Plane.XZ):
        with Locations((-17.625, 0)):
            Rectangle(SKETCH3_W, SKETCH3_H)
    extrude(amount=-CUT_EXTRUDE2_DEPTH, mode=Mode.SUBTRACT)

    # Boss-Extrude2: up to this face of the body (flat: up to its plane)
    boss_extrude2_end = Plane(part.part.faces().sort_by_distance((0, 2, 28.625))[0])
    # Sketch4 → Boss-Extrude2 (add, up to the picked face)
    with BuildSketch(Plane(origin=(0, 0, -28.625), x_dir=(-1, 0, 0), z_dir=(0, 0, -1)), mode=Mode.PRIVATE) as boss_extrude2_sk1:
        with BuildLine():
            Line((-4.249281585, 0), (6.625, 0))
            ThreePointArc((6.625, 0), (1.187859207, -2.75), (-4.249281585, 0))
        make_face()
    boss_extrude2_tool1 = split(extrude(boss_extrude2_sk1.sketch, amount=-BOSS_EXTRUDE2_REACH, mode=Mode.PRIVATE), bisect_by=boss_extrude2_end, keep=Keep.BOTH, mode=Mode.PRIVATE)
    add(boss_extrude2_tool1.solids().sort_by(Axis((-1.187859, -1.121798, -28.625), (0, 0, 1)))[0])

    # Fillet1
    fillet1_edges = [part.edges().sort_by_distance(p)[0] for p in [
        (-28.625, 2, 12.5),
        (-28.625, 2, -12.5),
    ]]
    fillet(fillet1_edges, radius=FILLET1_R)


solid = part.part
